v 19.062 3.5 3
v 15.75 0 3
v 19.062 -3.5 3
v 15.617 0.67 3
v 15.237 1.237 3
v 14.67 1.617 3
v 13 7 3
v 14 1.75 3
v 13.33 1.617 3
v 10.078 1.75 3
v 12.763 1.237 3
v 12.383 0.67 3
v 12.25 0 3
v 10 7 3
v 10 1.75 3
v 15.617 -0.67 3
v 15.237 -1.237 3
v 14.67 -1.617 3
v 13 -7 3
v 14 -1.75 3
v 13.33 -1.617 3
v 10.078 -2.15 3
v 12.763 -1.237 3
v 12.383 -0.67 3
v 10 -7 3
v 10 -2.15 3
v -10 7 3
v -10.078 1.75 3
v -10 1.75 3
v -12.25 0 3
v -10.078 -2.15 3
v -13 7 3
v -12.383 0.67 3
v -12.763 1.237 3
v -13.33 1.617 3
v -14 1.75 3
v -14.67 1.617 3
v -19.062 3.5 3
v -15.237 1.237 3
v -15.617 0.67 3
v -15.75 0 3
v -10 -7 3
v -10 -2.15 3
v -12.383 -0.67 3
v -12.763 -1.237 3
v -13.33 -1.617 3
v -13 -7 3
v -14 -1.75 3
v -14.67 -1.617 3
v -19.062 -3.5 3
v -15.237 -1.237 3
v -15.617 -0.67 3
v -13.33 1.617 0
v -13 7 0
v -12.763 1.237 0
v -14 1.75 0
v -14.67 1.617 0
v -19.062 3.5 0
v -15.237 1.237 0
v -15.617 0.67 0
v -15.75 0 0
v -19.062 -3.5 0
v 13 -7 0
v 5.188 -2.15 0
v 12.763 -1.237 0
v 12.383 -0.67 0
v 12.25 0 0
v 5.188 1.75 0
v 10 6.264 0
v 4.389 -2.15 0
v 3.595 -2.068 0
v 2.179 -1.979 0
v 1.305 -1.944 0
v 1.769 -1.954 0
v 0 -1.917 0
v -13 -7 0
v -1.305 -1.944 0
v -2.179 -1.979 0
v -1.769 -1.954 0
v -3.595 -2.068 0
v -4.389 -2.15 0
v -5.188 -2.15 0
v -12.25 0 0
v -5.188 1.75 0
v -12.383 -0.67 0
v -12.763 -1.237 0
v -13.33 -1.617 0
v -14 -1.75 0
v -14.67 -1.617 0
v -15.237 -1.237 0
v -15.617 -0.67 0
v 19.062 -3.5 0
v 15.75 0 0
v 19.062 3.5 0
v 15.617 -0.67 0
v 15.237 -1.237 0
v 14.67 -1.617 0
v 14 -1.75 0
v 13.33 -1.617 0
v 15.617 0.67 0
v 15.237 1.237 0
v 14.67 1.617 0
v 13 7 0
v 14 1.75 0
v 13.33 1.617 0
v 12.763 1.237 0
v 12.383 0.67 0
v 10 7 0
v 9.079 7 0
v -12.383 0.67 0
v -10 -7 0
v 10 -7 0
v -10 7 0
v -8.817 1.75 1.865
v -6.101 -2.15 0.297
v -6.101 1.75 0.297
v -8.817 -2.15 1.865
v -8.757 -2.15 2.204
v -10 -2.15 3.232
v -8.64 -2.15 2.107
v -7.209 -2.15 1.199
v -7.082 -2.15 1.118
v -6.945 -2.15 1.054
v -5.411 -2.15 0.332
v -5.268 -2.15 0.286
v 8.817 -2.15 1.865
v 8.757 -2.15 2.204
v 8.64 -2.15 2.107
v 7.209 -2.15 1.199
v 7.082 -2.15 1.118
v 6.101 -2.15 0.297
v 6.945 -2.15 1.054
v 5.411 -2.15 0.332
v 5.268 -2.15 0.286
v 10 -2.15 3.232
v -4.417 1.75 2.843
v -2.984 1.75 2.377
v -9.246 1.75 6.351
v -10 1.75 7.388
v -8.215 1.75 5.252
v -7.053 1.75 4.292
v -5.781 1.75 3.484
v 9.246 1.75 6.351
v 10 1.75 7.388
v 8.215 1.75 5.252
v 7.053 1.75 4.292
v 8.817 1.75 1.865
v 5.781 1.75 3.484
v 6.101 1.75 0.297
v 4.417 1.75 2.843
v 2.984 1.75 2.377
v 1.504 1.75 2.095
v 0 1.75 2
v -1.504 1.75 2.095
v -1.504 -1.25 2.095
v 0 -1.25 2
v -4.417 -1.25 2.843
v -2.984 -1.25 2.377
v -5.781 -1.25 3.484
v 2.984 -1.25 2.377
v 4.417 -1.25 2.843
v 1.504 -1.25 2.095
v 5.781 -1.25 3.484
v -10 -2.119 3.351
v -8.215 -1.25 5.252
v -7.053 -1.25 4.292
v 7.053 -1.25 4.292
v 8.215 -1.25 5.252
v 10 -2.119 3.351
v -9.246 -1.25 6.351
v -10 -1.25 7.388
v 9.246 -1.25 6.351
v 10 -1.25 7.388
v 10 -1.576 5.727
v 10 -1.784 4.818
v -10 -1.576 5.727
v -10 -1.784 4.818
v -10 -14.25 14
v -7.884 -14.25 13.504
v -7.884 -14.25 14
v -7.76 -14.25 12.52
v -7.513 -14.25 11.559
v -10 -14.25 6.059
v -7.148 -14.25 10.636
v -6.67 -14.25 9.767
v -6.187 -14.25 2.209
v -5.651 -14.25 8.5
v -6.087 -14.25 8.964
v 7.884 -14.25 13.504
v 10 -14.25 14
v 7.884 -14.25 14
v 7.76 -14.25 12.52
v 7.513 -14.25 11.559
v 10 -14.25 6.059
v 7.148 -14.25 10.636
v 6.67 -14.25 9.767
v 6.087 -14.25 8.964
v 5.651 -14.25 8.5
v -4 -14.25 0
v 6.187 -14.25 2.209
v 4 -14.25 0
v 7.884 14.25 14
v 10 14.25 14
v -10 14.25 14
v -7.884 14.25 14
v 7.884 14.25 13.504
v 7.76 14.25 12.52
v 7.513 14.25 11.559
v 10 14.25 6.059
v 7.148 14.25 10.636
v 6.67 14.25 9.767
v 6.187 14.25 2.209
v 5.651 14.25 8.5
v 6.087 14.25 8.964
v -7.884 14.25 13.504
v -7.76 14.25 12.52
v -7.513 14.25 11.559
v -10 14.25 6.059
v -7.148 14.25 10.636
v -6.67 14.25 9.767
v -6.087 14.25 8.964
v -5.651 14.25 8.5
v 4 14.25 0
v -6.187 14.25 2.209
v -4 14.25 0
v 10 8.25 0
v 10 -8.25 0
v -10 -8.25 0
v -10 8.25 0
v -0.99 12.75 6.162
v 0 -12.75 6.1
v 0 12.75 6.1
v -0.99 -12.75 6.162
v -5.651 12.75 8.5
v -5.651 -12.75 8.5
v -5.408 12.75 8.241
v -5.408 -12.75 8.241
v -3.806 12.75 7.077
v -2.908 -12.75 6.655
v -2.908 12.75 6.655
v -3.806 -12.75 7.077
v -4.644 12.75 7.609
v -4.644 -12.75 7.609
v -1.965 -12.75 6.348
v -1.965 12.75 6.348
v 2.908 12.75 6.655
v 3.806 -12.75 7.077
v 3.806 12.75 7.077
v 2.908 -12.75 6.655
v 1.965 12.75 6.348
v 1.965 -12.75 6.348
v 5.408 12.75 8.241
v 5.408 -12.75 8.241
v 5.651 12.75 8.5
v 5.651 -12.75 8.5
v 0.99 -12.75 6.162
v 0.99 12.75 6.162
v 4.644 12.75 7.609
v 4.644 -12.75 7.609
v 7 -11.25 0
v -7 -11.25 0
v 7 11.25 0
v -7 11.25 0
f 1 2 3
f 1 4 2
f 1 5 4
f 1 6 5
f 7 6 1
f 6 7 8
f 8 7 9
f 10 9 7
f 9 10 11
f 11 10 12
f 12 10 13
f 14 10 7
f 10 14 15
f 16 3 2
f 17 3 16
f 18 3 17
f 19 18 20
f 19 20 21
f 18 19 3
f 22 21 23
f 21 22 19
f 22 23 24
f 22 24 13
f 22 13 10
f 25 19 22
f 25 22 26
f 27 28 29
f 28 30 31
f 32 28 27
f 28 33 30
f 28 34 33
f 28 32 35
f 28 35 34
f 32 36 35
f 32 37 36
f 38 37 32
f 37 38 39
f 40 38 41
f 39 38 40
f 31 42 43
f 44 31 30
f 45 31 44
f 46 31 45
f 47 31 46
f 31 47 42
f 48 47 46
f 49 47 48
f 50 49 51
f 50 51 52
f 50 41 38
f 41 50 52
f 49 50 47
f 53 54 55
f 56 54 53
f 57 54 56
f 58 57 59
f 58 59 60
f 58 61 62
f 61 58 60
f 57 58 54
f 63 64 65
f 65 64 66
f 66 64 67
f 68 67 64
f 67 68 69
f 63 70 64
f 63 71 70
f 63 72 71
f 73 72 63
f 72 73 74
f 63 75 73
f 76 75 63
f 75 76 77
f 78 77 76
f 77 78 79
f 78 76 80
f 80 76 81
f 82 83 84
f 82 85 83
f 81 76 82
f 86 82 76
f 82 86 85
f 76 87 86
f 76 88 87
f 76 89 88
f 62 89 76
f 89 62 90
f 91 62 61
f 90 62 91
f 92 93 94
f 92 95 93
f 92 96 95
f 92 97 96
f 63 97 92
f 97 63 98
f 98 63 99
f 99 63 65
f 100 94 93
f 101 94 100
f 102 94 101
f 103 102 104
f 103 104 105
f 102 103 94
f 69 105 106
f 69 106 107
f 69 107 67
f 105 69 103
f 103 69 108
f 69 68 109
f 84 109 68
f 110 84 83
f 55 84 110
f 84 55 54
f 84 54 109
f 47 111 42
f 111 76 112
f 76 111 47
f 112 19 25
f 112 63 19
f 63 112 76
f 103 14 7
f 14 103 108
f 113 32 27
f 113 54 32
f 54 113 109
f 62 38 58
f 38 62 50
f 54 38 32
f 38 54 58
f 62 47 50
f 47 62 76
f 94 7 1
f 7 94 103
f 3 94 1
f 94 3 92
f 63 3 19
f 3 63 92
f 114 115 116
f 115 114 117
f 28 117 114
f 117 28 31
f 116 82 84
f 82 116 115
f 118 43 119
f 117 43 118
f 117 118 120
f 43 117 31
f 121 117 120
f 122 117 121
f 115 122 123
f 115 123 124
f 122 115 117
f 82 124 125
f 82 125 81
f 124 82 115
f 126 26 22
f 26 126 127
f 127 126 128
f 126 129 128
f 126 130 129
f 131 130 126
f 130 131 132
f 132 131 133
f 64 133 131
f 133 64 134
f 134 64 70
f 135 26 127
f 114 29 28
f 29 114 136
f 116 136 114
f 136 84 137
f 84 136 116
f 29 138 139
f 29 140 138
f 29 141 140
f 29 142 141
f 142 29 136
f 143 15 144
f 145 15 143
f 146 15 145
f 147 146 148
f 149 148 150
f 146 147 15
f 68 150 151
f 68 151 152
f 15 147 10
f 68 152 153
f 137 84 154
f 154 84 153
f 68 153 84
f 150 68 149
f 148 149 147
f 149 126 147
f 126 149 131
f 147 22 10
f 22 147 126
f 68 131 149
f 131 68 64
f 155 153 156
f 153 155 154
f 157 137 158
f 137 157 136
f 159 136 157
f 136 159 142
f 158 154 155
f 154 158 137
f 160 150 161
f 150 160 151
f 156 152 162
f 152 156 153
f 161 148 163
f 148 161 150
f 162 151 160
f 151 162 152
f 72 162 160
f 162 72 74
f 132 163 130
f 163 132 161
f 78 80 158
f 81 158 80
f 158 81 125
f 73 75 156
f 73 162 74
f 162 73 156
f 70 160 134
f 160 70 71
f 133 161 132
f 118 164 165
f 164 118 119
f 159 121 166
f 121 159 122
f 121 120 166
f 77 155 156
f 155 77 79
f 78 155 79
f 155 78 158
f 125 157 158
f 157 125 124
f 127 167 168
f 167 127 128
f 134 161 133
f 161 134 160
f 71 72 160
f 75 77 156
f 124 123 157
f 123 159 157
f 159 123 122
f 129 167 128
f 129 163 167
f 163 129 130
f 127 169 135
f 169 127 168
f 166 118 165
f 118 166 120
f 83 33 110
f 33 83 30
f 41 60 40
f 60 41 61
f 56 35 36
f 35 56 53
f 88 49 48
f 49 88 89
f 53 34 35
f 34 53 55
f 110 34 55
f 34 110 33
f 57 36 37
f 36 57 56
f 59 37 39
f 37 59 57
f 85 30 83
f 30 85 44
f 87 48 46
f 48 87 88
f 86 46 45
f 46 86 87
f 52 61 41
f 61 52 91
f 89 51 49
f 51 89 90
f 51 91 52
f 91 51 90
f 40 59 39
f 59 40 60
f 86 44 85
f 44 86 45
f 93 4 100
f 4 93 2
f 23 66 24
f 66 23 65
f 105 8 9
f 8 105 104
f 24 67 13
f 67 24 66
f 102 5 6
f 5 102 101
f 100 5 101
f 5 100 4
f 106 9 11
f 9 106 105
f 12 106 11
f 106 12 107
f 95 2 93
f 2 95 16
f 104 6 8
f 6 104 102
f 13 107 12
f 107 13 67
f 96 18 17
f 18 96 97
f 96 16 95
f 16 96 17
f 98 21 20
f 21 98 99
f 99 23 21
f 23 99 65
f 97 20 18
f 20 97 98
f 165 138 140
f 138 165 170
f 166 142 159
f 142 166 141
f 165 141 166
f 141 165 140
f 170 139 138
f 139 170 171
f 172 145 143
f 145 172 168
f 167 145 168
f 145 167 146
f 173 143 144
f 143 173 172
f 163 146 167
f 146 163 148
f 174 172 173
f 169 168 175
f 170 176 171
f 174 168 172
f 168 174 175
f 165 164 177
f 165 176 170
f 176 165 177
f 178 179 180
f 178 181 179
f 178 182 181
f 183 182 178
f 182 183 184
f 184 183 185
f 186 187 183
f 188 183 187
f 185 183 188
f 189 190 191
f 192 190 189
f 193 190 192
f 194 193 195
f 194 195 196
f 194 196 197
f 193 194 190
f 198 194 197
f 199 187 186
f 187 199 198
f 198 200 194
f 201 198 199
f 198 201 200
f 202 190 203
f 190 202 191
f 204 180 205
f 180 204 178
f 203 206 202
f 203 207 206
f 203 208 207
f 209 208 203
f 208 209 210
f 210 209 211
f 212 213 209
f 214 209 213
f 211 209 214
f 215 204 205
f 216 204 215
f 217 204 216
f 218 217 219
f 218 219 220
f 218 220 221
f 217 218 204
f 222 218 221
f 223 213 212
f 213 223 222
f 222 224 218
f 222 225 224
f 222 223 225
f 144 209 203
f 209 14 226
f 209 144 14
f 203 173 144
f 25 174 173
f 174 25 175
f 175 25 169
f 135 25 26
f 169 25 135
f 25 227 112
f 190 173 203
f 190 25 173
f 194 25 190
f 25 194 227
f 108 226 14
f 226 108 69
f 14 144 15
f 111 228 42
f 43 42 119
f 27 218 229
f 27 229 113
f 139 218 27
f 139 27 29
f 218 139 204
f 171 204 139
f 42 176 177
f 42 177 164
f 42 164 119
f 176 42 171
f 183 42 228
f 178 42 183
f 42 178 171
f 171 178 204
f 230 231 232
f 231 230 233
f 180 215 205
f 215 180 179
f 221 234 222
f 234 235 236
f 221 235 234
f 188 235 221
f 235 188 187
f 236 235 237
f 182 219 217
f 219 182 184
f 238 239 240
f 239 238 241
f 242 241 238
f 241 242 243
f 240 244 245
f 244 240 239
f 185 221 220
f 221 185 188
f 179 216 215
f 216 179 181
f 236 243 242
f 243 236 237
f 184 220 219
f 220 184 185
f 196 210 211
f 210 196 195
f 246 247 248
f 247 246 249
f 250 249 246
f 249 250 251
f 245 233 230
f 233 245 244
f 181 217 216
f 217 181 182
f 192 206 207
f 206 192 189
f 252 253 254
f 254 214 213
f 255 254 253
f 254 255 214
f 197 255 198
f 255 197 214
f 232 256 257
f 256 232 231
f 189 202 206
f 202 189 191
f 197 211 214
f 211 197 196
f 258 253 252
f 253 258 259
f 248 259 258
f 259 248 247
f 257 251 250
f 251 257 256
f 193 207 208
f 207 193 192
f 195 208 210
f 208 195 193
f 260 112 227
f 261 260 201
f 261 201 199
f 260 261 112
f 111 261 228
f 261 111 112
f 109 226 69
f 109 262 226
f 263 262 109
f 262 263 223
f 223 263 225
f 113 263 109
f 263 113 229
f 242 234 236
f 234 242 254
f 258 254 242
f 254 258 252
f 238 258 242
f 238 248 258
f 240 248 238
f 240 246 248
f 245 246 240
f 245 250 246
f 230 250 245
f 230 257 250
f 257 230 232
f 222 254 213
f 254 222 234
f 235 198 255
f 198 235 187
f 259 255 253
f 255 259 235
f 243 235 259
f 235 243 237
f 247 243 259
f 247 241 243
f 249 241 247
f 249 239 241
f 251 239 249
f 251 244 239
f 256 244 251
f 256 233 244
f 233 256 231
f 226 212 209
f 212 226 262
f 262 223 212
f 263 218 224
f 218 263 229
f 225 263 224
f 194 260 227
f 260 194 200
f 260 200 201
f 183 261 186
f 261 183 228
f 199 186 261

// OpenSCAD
// file: ../configuration.scad
/*
	Konfiguracni soubor 3D tiskarny RebeliX X2
	
	Sledujte nas na:		  
			www.RepRap4U.cz
			www.facebook.com/RebeliX.cz
			https://twitter.com/reprap4u
			https://plus.google.com/+Reprap4uCz-3Dtiskarna-RebeliX
*/

/*================ Slic3r nastaveni ==========================*/

// Vyska vrstvy pro tisknuti dilu [mm]
layer_height = 0.3;

// Sirka vytlacovaneho materialu [mm]
extrusion_width = 0.66; //Slic3r->Print Settings->Advanced->Default extrusion width

/*==================== M6 sroub ==============================*/

// Rezerva prumeru hlavy sroubu [mm]
space = 1;

// Prumer hlavy M6 sroubu (pricte se rezerva) [mm]
M6_head_diameter = 10.6+space;
//M6_head_diameter = 12+space;

// Vyska hlavy M6 sroubu (dulezite pro zapusteni hlavy sroubu do plastu) [mm]
M6_head_height = 3.6;
//M6_head_height = 4.5;

// Delka sroubu M6 [mm]
// M6x12
M6_lenght = 12;

/*=================== Nastaveni dilu =========================*/

// Posun Z zakladny
z_base_offset = 11;

// Tloustka rohovych spojek
// 5 mm => sroub M6x14 s podlozkou
// 3 mm => sroub M6x12 s podlozkou
coupler_thickness = 5;

// Prumer 8mm tyce
rod_8mm_d = 8.2;

// Posun drzacku mezi x-motor a x-end
x_holder_position = 6.5;

/*======================== Motory ============================*/

// Delka motoru (ovlivni dily a delky tyci pro osy Z a Y)
//SX17-1003LQFE (doporuceno hlavne na osu Z)
motor_length = 29.5;
//SX17-1003 (doporuceno hlavne na osu Z), SX17-0503LQEF
//motor_length = 34;
//SX17-1005
//motor_length = 40;
//SX17-0905 - zde je jiz problem s velkou vyskou motoru na ose Z - musi se upravit endstop-holder
//motor_length = 48;

/*================ Remeny a remenicky ========================*/

// GT2 
belt_tooth_distance = 2;
belt_tooth_ratio = 0.5;

// T2.5
//belt_tooth_distance = 2.5;
//belt_tooth_ratio = 0.68;
// main file
// PRUSA Mendel  
// y LM8UU holder
// GNU GPL v3
// Josef Průša
// josefprusa@me.com
// prusadjs.cz
// http://www.reprap.org/wiki/Prusa_Mendel
// http://github.com/prusajr/PrusaMendel

include <../configuration.scad>

/**
 * @id bushing
 * @name Bushing
 * @category Printed
 * @id bushing
 */ 
 
y_linear_bearings();

// Linear bushing options

m3_diameter = 3.5;
lm8uu_diameter=15;
lm8uu_length=24;
lm8uu_radius = lm8uu_diameter / 2;
block_height = 2*lm8uu_length+17;

//cut_corners(true, false, true, false); 

module cut_corners(lf,lb,rf,rb){
	difference(){
	lm8uu_bearing_holder();
	if(lf) translate(v=[(10)-3,(-28.5/2)+3,0]) rotate(a=[0,0,45]) rotate(a=[35,0,0]) translate(v=[0,-5,0]) cube(size = [20,10,20], center = true);
	if(lb)translate(v=[(-10)+3,(-28.5/2)+3,0]) rotate(a=[0,0,-45]) rotate(a=[35,0,0]) translate(v=[0,-5,0]) cube(size = [20,10,20], center = true);
	mirror([ 0, 1, 0 ]){
	if(rf)translate(v=[(10)-3,(-28.5/2)+3,0]) rotate(a=[0,0,45]) rotate(a=[35,0,0]) translate(v=[0,-5,0]) cube(size = [20,10,20], center = true);
	if(rb)translate(v=[(-10)+3,(-28.5/2)+3,0]) rotate(a=[0,0,-45]) rotate(a=[35,0,0]) translate(v=[0,-5,0]) cube(size = [20,10,20], center = true);
	}
}
//lm8uu_bearing_holder();
}

module linear_holder_base(length){
	
difference(){
union(){
//main block
//translate(v=[-(lm8uu_radius+2.5)/2,0,block_height/2]) cube(size = [lm8uu_radius+2.5,lm8uu_diameter+5,block_height], center = true);
translate(v=[-5,0,length/2]) cube(size = [10,20,length], center = true);

//holder for main block in x-end
// leaving it out now
//translate(v=[0,0,0]) cylinder(h = length, r=10, $fn=60);

//translate(v=[-5,0,15.8/2]) cube(size = [12,23,15.8], center = true);
//translate(v=[0,0,0]) cylinder(h = block_height, r=lm8uu_radius+2.5, $fn=60);
}
//main axis
translate(v=[0,0,-2]) cylinder(h = length+4, r=(lm8uu_diameter+0.8)/2, $fn=50);
// not needed for zip tie
//main cut
//translate(v=[10,0,length/2]) cube(size = [20,14,length+4], center = true);
//smooth entry cut
//translate(v=[12,0,length/2]) rotate(a=[0,0,45]) cube(size = [20,20,length+4], center = true);
}
}

module y_linear_bearings(){
	difference(){
		union(){
translate(v=[0,0,1.5]) cube(size = [26,14,3], center = true);
translate(v=[-13,0,0])rotate(a=[0,0,30])cylinder(h = 3, r=7, $fn=6);
translate(v=[13,0,0])rotate(a=[0,0,30])cylinder(h = 3, r=7, $fn=6); 
}

translate(v=[-14,0,-0.1])cylinder(r=m3_diameter/2, h=10, $fn = 16);
translate(v=[14,0,-0.1])cylinder(r=m3_diameter/2, h=10, $fn = 16);

//hack
translate(v=[0,14.25,4.5]) rotate(a=[90,0,0]) translate(v=[0,9.5,0]) rotate(a=[0,0,90]){
	translate(v=[0,0,lm8uu_length/2+0.5]) ziptie();
}
}
cut_corners(true, true, true, true); 
}

lm8uu_holder_length = lm8uu_length+4.5;
lm8uu_holder_width= lm8uu_diameter+5;

module lm8uu_bearing_holder(){
translate(v=[0,14.25,4.5])rotate(a=[90,0,0])translate(v=[0,9.5,0]) rotate(a=[0,0,90]){

difference(){
	union(){
		linear_holder_base(lm8uu_length+4.5);
		translate(v=[-10-2,0,lm8uu_holder_length/2]) cube(size = [4,20,lm8uu_holder_length], center = true);
	}
	translate(v=[0,0,12.5]) ziptie();
}


translate(v=[-(10-5.5)/2-5.5,0,0.75]) cube(size = [10-5.5,20,1.5], center = true);
translate(v=[-(10-5.5)/2-5.5,0,lm8uu_length+3.75]) cube(size = [10-5.5,20,1.5], center = true);

}
}


module ziptie(){
difference(){
translate(v=[0,0,0]) cylinder(h = 3.9, r=lm8uu_diameter);
translate(v=[0,0,0]) cylinder(h = 5, r=lm8uu_diameter-3, $fn=50);
translate(v=[0,0,3]) cylinder(h = 1, r1=lm8uu_diameter-3, r2=lm8uu_diameter, $fn=50);
}}
